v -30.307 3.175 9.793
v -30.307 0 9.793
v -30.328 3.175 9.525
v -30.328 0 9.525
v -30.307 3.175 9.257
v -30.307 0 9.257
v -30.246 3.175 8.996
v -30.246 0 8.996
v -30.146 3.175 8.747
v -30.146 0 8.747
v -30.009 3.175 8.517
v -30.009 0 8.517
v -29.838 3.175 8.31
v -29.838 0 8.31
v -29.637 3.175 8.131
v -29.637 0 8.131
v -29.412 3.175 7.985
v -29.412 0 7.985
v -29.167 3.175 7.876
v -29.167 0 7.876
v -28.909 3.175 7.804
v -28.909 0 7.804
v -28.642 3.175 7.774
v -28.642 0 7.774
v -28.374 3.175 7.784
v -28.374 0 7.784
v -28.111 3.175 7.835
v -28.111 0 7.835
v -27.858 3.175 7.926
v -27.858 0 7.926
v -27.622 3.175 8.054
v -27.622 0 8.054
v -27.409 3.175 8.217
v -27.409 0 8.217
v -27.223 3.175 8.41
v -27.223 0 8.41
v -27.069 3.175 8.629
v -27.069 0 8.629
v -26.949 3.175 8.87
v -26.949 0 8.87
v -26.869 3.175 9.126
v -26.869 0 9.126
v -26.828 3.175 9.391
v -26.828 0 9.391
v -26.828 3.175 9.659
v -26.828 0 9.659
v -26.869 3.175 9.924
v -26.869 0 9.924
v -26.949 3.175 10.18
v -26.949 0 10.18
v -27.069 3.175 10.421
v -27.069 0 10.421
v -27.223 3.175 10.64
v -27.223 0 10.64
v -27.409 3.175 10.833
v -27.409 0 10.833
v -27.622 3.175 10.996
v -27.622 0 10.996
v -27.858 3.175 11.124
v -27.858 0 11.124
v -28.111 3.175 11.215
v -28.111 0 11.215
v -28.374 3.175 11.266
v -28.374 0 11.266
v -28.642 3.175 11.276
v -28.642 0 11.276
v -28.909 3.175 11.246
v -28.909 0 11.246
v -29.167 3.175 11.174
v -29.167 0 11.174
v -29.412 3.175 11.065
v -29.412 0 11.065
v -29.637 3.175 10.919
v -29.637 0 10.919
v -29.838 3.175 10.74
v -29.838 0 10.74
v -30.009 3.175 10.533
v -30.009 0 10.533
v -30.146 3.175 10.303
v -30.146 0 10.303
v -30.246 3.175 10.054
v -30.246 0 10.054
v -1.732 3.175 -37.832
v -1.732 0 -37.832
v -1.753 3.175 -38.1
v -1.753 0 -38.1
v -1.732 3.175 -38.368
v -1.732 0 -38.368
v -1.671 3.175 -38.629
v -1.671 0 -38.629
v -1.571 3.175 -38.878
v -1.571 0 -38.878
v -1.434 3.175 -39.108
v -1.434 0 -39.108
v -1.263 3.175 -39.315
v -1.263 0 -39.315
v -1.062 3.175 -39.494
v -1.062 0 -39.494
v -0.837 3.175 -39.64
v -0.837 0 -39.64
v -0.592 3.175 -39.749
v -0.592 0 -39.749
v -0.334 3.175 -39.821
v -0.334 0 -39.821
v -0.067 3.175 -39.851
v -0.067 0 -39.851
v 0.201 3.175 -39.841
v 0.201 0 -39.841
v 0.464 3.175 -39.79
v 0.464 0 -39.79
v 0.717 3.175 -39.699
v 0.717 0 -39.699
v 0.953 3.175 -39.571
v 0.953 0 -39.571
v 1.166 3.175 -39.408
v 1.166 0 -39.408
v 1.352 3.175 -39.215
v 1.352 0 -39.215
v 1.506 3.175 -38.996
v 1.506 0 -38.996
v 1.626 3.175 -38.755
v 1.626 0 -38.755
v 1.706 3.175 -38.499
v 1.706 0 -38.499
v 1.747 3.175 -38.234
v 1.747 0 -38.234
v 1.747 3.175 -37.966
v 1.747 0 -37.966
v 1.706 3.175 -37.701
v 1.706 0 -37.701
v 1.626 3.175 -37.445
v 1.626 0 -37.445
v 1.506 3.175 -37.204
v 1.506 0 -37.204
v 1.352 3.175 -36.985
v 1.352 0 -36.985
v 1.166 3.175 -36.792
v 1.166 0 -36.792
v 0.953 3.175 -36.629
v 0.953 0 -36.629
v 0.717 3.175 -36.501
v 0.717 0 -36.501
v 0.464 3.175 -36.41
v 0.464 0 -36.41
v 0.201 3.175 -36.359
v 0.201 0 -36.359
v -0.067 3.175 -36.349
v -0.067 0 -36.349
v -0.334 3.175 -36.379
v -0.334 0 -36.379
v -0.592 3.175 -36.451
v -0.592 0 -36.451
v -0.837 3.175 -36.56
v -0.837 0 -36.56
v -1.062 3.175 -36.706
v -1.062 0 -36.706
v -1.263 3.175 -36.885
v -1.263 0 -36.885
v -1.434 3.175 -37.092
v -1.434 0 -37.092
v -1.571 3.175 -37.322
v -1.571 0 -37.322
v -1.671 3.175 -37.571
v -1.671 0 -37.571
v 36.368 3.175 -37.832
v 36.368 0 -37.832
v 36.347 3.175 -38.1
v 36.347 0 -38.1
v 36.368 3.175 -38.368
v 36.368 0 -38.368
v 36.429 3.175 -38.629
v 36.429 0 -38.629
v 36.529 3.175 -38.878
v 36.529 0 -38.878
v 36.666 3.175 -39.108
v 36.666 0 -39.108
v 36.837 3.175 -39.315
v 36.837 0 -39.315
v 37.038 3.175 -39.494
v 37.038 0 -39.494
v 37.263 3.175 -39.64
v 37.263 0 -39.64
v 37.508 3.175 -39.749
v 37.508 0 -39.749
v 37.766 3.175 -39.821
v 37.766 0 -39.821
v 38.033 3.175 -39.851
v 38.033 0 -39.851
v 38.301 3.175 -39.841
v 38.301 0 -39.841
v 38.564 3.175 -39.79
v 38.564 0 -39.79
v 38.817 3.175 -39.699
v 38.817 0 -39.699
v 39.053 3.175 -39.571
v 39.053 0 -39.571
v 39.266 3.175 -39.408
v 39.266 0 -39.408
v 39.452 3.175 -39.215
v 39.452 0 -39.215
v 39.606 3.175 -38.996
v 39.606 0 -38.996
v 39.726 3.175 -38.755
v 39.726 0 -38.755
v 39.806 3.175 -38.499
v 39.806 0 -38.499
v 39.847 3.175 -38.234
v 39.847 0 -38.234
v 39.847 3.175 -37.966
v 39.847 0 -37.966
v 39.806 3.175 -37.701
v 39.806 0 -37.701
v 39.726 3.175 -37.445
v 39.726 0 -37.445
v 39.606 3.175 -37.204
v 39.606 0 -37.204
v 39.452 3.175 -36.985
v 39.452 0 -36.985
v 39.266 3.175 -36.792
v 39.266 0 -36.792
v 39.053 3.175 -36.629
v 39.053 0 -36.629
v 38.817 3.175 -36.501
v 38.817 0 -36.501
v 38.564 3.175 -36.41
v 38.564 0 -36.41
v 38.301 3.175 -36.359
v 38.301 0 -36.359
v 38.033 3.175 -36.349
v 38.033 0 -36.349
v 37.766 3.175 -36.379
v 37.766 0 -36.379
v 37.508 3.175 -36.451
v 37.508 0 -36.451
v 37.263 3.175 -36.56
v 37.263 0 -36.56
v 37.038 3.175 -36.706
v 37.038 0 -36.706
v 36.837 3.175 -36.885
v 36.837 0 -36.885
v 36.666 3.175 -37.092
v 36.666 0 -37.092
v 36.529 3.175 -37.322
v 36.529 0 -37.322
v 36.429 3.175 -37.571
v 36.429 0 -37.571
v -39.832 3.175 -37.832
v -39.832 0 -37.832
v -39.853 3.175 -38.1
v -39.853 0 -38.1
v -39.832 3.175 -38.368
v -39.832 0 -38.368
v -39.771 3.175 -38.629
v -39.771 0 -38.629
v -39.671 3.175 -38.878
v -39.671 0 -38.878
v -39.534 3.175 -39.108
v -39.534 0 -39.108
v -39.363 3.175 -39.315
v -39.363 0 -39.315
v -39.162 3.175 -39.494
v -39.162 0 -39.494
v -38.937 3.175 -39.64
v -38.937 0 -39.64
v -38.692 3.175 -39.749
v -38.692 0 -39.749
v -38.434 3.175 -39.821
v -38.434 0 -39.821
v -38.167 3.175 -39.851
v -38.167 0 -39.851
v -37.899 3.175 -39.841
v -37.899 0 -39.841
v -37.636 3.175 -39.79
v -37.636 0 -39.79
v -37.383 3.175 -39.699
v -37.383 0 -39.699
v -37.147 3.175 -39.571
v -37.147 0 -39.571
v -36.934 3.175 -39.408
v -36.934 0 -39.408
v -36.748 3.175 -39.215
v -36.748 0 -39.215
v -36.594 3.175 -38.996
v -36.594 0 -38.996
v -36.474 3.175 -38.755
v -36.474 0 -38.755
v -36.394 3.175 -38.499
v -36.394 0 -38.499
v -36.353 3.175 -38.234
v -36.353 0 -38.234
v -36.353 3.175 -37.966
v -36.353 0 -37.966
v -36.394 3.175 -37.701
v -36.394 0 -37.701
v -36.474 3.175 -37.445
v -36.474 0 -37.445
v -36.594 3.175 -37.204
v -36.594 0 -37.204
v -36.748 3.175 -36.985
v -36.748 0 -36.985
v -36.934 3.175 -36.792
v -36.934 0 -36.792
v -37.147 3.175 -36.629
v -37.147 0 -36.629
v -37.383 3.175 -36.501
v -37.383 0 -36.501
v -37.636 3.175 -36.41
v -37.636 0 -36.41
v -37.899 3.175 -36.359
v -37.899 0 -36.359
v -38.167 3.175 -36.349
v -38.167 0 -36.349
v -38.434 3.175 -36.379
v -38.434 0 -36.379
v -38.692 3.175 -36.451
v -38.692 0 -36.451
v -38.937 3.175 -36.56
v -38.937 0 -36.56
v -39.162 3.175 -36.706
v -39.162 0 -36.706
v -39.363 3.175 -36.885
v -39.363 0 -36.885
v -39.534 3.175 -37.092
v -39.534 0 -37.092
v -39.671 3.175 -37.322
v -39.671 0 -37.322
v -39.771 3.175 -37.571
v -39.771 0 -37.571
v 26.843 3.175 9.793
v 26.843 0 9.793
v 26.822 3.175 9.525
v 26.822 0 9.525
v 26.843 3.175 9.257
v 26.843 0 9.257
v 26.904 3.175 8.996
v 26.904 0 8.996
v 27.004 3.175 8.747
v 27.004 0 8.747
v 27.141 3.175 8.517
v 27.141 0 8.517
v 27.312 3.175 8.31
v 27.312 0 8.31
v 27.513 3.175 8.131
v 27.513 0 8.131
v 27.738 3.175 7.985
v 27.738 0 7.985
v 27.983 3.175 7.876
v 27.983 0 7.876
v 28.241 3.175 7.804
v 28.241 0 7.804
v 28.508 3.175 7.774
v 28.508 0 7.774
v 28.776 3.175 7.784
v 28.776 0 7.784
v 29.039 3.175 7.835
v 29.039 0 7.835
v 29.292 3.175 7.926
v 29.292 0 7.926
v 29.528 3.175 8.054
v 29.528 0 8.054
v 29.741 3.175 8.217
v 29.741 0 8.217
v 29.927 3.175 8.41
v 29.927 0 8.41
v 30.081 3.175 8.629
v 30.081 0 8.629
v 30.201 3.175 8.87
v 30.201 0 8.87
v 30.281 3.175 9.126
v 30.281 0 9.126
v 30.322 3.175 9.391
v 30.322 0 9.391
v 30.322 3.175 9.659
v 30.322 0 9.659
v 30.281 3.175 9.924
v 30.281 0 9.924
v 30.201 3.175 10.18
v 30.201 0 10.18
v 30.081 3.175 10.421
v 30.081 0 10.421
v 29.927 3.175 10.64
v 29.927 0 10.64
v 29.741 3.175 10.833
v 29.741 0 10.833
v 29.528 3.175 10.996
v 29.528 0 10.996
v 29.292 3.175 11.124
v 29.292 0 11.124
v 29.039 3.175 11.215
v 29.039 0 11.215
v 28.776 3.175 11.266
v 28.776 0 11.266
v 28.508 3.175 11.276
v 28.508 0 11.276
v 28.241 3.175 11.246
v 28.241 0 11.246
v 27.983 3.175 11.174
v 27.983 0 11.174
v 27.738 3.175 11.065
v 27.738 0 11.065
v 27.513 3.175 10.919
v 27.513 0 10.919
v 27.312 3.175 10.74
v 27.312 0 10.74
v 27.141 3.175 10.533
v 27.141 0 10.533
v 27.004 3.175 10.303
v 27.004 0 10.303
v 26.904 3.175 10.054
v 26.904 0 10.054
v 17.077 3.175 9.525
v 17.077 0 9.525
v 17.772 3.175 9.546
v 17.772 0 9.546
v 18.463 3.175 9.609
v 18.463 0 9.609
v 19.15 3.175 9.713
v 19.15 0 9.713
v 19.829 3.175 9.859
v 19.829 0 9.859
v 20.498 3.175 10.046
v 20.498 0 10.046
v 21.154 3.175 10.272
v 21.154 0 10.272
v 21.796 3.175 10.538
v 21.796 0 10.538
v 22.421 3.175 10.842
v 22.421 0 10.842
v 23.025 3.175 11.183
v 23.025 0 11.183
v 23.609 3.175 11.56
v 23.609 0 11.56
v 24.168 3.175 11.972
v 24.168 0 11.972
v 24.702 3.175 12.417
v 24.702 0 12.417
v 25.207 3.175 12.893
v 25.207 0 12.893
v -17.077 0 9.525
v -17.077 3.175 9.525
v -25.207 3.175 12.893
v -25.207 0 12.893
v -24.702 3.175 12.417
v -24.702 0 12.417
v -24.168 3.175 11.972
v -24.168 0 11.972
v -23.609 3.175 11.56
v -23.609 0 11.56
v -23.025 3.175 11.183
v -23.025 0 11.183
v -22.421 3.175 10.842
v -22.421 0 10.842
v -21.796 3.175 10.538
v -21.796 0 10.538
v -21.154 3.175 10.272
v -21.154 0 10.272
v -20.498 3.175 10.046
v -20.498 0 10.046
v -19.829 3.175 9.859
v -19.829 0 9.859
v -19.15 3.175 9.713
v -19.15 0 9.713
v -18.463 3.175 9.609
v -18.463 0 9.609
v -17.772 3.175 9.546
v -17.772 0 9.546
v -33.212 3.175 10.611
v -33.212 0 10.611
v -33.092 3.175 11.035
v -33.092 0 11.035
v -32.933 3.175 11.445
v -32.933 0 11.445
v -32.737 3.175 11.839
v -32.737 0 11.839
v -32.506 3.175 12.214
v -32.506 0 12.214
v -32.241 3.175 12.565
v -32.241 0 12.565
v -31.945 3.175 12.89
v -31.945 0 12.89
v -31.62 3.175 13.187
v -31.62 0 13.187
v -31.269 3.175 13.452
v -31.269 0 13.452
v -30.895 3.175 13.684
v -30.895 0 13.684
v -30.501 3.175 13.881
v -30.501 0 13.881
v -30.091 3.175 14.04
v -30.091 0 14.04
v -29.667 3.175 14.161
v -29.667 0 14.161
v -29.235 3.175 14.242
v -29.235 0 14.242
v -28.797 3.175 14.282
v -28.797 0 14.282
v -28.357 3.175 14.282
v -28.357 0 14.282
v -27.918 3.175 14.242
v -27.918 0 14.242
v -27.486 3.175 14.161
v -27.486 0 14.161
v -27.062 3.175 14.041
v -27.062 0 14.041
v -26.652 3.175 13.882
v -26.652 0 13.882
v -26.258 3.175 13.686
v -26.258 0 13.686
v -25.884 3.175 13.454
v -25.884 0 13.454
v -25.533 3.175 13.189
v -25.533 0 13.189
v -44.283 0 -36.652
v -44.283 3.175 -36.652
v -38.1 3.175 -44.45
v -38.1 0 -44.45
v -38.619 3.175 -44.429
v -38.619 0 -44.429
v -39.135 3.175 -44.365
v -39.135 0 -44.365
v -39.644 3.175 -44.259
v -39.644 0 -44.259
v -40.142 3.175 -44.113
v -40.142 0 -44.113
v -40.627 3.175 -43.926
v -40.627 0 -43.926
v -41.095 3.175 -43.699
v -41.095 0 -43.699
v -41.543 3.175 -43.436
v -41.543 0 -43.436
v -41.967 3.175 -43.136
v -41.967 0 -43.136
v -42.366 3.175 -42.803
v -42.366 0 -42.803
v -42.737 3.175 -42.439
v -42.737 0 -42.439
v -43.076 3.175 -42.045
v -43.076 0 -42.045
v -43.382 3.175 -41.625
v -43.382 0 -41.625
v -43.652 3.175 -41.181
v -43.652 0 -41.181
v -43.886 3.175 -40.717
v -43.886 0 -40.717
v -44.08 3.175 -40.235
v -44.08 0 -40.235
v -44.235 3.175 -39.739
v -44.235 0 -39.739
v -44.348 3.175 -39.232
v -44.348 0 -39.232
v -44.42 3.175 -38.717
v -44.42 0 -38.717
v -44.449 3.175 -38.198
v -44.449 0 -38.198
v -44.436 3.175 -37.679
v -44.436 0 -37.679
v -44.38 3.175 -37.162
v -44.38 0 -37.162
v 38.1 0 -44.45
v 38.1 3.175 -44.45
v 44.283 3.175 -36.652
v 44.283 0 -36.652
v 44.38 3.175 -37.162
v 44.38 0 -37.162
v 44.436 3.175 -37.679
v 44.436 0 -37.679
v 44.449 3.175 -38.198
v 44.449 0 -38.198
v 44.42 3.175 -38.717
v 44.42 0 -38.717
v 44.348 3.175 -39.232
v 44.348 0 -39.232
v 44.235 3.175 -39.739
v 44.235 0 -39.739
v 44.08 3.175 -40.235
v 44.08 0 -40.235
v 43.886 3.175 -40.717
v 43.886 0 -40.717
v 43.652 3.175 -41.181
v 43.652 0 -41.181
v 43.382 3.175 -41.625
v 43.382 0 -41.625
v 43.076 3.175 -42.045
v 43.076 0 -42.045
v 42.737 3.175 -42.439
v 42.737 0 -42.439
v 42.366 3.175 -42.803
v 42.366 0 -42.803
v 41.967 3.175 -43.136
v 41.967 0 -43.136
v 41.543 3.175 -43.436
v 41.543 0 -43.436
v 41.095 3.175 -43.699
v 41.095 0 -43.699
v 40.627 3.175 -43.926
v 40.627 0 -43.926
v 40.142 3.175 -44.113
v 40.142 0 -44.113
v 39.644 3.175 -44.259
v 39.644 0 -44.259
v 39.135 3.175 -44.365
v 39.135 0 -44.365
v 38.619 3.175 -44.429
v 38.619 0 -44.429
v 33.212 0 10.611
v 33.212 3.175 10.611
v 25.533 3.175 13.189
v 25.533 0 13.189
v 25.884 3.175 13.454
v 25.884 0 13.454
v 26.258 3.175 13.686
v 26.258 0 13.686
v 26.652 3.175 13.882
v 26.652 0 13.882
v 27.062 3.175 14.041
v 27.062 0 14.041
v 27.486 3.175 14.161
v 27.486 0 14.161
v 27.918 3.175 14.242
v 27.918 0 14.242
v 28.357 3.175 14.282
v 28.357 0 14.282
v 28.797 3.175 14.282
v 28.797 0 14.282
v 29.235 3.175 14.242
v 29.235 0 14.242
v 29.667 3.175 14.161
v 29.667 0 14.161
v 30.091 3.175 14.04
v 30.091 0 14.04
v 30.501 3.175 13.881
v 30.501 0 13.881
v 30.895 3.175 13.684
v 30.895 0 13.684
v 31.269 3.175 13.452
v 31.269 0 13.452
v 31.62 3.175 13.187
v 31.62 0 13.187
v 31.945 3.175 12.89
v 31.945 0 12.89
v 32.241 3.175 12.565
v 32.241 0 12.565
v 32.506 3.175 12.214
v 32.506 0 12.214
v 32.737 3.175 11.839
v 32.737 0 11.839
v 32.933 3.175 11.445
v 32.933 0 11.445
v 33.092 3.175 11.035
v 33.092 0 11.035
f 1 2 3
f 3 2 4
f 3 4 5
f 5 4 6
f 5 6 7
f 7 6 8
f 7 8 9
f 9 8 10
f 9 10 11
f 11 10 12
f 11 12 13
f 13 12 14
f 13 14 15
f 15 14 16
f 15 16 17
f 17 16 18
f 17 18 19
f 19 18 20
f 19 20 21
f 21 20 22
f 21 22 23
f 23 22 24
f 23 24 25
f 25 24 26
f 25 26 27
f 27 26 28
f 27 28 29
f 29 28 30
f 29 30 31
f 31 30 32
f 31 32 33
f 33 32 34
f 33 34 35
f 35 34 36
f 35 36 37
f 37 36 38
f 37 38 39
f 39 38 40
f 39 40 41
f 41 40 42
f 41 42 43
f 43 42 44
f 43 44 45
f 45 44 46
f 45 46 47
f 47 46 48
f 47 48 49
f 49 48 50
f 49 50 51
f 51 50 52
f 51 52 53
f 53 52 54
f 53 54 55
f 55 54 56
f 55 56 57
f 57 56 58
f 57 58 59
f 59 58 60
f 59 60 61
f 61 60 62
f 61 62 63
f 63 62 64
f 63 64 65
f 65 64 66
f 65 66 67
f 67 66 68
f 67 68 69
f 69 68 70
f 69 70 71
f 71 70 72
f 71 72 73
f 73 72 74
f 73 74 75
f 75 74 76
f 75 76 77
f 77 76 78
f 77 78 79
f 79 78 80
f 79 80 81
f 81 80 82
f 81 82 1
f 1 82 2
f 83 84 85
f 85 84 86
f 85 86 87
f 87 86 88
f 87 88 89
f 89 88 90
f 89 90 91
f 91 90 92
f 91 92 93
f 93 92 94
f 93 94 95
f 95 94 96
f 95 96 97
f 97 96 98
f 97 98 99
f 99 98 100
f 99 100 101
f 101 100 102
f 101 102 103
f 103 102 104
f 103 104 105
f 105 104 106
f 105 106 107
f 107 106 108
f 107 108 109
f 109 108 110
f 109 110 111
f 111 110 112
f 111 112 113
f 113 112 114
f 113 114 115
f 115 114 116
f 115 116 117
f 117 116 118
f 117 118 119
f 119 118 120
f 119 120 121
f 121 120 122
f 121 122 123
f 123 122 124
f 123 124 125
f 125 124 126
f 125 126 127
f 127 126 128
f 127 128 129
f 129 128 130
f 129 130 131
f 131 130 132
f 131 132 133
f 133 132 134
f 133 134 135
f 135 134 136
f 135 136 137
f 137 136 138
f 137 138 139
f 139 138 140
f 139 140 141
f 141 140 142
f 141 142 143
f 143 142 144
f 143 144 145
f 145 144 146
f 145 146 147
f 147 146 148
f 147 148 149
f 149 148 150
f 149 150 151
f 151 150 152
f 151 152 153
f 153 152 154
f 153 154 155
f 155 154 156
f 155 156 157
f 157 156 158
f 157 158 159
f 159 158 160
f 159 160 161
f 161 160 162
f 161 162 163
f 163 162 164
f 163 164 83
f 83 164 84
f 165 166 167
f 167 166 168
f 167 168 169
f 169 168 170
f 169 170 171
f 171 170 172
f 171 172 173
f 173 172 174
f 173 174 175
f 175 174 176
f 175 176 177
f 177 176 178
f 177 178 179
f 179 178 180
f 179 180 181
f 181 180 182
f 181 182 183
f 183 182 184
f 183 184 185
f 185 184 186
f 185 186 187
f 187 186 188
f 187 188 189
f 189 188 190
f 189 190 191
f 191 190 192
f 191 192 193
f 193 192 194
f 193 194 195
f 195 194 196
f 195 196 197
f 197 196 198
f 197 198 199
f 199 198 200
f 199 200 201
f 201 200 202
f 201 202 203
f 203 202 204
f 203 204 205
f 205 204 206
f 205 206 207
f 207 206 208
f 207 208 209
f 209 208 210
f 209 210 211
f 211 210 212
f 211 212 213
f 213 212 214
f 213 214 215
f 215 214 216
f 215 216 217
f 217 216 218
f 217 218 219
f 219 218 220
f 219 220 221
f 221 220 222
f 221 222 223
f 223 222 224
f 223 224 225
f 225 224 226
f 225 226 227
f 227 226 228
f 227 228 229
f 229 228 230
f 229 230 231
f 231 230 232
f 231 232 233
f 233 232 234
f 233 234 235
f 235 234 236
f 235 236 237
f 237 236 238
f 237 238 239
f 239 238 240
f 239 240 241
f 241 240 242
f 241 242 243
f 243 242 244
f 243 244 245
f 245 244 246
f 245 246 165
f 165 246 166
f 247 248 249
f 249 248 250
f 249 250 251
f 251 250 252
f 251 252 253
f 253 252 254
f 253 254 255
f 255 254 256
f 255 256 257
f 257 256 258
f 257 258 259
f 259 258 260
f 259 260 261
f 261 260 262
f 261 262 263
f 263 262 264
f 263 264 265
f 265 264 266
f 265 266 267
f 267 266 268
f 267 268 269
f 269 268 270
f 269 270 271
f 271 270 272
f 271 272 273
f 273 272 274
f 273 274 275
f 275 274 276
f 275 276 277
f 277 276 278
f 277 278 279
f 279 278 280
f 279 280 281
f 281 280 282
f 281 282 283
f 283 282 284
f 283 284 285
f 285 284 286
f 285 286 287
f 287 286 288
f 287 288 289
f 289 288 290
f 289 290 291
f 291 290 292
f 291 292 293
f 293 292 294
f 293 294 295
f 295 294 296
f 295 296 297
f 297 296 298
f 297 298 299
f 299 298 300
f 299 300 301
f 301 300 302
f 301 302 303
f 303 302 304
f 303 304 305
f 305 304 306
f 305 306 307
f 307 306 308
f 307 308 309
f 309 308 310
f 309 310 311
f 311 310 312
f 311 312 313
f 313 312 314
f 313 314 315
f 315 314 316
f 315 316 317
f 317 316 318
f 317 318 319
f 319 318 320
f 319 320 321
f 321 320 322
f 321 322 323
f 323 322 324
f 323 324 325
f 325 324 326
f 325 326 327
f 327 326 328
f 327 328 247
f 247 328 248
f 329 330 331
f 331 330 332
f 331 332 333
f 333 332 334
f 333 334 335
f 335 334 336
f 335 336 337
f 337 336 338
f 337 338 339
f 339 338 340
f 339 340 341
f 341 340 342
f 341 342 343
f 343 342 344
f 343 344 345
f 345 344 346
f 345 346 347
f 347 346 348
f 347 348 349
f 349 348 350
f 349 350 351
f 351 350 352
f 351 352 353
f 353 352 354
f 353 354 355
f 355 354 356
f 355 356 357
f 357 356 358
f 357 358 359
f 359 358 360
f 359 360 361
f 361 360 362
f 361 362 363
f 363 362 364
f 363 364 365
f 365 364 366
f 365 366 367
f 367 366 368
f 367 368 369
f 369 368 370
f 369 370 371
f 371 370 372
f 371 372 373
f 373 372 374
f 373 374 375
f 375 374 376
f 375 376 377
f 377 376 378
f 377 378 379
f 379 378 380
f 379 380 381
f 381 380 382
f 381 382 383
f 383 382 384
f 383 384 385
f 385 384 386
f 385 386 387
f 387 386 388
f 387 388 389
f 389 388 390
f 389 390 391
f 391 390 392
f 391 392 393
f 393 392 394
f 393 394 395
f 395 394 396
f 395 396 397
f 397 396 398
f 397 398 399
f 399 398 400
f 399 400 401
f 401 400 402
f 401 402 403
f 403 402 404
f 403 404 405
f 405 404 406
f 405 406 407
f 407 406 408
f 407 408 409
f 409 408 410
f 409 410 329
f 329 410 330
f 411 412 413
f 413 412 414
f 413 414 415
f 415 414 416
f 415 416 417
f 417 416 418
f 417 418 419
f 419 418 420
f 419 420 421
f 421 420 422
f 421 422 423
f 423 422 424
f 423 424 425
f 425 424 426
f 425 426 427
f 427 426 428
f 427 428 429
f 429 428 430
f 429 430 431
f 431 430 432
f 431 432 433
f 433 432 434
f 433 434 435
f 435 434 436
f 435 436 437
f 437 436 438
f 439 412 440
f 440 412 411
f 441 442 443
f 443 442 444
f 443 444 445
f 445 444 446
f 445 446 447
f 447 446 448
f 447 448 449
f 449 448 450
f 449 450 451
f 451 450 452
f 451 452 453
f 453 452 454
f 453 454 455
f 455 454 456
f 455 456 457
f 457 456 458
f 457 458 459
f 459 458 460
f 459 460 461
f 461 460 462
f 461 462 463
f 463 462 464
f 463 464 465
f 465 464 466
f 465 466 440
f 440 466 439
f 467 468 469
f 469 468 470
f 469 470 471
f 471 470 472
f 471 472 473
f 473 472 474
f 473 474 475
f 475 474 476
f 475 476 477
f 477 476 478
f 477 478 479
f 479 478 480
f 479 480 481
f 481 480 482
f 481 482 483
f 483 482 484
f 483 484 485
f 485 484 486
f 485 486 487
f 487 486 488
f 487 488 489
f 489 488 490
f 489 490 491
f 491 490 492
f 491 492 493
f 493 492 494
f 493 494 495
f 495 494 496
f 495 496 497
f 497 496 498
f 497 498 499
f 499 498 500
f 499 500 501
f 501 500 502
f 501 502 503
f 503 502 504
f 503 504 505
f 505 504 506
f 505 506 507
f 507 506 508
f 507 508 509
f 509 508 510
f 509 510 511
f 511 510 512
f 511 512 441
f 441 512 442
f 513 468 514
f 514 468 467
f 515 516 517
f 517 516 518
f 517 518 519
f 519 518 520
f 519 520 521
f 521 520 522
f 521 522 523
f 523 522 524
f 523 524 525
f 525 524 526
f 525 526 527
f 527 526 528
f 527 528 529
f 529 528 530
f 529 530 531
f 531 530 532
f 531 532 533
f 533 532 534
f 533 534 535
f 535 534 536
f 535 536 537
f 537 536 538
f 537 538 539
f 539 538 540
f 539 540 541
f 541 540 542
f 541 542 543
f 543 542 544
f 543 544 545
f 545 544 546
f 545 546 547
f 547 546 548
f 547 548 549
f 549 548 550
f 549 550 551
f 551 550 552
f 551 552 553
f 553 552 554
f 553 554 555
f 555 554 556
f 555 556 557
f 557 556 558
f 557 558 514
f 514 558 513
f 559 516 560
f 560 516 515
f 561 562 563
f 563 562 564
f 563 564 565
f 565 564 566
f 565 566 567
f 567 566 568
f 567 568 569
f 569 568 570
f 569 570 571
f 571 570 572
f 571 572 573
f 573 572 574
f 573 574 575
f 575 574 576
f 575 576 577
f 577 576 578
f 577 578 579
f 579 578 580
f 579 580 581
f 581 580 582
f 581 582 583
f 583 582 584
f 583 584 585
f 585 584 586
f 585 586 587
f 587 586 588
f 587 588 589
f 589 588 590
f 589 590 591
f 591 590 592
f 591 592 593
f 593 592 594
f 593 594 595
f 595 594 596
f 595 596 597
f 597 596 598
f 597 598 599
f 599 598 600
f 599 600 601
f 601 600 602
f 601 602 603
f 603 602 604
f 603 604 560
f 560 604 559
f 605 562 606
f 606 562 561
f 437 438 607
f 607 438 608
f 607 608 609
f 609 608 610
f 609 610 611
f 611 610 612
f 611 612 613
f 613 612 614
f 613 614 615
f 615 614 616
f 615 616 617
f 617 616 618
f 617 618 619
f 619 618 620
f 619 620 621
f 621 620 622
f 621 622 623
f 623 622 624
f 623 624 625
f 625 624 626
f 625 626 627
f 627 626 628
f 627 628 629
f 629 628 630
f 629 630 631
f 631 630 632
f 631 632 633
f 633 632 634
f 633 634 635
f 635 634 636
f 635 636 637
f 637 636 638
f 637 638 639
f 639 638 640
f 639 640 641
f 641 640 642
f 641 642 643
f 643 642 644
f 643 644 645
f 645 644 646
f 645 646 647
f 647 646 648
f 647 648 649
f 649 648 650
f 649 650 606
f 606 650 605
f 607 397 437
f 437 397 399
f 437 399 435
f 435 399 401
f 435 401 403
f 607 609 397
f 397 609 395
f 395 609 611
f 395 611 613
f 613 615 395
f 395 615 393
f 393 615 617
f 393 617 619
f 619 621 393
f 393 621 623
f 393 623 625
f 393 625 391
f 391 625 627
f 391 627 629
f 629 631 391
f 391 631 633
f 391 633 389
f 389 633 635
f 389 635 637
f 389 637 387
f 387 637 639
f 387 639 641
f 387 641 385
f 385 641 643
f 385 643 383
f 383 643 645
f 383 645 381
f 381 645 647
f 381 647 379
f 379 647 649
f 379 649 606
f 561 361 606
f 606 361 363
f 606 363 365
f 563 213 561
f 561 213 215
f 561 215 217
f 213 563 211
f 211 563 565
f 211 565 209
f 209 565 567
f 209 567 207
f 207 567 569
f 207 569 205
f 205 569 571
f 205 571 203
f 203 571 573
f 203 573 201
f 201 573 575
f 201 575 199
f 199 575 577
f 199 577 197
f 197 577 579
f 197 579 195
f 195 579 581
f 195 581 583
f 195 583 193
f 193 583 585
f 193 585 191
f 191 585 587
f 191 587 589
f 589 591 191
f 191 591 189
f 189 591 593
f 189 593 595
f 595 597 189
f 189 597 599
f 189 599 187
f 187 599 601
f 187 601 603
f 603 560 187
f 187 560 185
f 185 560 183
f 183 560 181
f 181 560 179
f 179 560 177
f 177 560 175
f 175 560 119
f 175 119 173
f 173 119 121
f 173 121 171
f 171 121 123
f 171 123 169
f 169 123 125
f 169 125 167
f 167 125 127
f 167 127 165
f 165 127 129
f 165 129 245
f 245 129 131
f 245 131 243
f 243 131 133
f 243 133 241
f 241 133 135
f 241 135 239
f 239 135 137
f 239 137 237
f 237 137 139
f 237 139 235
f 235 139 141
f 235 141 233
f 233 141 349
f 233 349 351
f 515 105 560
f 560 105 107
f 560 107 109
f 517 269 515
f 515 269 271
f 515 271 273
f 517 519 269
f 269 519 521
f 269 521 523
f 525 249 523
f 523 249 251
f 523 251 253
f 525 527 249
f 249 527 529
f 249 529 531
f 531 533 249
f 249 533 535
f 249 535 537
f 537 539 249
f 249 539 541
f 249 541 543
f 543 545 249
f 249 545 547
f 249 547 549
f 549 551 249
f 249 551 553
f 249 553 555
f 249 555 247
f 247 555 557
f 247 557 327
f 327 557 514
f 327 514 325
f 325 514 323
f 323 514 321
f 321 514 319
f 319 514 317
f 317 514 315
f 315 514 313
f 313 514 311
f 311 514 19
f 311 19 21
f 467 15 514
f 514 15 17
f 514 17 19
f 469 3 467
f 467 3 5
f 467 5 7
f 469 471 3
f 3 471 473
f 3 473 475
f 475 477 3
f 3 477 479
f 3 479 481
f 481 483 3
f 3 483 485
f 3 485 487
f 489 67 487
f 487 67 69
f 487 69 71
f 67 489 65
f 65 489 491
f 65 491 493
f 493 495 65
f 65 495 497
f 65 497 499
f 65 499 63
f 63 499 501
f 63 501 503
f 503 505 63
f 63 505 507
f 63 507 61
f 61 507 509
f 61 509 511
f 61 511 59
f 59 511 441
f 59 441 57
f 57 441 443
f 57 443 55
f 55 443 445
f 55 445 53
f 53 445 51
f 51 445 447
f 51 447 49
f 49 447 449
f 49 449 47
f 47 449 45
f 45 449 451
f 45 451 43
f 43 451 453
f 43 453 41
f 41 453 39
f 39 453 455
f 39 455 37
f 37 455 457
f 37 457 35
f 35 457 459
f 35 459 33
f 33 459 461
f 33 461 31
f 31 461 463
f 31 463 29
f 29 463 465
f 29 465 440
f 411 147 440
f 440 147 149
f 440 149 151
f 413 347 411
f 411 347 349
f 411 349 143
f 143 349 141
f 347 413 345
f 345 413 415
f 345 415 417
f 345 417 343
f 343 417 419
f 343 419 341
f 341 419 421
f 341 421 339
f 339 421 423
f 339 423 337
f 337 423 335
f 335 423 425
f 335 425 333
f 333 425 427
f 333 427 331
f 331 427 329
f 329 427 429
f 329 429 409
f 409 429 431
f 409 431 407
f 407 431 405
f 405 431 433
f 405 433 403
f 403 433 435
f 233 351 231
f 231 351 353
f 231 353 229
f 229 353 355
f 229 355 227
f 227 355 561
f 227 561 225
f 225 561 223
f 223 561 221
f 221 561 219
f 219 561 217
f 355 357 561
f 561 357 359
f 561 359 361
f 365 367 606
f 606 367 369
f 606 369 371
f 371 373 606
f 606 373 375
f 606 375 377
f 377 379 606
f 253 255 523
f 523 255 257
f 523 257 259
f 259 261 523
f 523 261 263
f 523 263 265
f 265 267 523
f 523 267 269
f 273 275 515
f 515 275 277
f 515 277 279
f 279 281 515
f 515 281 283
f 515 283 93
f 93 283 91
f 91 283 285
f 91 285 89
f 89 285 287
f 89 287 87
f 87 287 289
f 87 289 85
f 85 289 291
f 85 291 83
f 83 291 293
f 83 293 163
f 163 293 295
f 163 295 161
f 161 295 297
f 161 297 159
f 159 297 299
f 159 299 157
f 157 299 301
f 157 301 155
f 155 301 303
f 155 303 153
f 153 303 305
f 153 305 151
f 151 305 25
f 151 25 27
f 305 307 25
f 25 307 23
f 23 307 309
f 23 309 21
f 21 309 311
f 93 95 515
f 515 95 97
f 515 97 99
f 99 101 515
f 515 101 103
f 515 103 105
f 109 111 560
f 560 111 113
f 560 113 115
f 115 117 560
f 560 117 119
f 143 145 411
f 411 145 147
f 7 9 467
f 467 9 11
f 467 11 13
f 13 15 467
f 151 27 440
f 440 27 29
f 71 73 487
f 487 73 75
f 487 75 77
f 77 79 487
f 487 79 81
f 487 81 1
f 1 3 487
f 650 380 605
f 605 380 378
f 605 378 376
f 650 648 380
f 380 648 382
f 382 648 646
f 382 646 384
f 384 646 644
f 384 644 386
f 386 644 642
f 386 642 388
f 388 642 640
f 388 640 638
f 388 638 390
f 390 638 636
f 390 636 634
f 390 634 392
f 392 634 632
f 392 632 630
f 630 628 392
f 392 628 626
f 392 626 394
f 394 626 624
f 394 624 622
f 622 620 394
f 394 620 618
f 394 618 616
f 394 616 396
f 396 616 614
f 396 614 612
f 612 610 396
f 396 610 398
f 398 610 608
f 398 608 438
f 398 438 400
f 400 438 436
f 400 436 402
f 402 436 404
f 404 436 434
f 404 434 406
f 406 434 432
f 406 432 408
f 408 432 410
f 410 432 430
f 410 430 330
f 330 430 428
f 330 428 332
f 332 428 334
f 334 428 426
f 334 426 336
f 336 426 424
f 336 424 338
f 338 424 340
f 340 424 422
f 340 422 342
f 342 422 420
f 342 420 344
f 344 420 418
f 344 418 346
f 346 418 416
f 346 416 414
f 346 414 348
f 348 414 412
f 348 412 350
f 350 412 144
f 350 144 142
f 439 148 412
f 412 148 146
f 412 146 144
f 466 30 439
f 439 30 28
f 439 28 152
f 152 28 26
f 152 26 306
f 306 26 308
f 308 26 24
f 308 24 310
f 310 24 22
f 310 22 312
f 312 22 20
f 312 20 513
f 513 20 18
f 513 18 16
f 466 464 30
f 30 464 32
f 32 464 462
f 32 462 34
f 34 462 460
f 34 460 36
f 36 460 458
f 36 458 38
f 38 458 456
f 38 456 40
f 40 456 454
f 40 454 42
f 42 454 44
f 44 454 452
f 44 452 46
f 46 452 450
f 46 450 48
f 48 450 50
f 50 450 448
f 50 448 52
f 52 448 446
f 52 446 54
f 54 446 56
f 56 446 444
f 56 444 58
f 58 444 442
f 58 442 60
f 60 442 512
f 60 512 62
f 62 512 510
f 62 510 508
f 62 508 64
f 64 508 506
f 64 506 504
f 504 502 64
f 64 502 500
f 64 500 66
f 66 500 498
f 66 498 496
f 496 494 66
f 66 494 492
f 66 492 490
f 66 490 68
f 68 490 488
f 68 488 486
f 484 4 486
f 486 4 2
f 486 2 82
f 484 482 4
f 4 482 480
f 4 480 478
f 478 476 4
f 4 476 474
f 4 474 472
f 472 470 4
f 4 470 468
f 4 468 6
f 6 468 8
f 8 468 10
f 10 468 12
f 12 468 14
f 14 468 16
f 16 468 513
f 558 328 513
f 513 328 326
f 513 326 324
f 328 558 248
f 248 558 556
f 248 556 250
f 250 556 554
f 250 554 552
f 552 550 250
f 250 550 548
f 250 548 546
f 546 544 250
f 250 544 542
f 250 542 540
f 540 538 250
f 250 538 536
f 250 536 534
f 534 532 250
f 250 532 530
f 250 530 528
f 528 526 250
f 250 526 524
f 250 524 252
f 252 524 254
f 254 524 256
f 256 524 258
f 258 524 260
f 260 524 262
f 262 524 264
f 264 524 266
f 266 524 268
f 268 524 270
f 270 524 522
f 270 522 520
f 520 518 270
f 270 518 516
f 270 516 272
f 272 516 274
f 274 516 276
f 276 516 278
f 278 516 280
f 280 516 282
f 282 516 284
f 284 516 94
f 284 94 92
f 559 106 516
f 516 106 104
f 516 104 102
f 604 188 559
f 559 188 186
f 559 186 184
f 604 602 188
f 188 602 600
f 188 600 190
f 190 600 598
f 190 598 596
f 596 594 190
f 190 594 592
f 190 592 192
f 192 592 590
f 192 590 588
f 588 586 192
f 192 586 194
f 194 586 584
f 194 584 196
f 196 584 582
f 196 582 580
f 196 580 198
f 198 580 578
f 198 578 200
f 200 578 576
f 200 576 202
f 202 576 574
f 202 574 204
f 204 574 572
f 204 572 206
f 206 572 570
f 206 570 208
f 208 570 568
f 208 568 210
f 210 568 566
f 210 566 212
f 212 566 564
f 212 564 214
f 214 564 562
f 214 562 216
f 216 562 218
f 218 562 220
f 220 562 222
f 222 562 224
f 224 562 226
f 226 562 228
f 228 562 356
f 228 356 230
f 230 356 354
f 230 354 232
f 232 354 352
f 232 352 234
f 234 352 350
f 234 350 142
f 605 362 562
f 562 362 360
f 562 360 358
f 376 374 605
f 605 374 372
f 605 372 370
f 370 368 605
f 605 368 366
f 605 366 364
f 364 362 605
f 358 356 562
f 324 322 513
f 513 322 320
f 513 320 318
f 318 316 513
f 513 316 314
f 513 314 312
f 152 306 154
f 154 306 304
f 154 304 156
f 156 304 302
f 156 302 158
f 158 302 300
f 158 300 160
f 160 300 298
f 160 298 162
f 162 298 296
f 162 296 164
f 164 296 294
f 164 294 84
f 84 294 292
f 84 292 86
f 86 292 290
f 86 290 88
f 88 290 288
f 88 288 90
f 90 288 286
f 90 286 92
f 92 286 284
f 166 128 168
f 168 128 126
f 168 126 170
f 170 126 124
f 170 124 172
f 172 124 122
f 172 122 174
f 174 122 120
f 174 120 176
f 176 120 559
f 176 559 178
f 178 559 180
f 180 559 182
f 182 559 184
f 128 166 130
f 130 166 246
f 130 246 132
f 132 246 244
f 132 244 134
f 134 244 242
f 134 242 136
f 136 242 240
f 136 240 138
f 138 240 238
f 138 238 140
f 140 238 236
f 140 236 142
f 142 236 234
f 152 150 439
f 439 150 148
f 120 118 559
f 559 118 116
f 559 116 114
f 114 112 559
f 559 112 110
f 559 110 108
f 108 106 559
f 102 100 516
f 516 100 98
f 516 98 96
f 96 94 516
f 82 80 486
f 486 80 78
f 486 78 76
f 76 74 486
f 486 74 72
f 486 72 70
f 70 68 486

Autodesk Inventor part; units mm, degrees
ref_plane "YZ Plane" through (0, 0, 0) normal (1, 0, 0) x (0, 1, 0)
ref_plane "XZ Plane" through (0, 0, 0) normal (0, 1, 0) x (-1, 0, 0)
ref_plane "XY Plane" through (0, 0, 0) normal (0, 0, 1) x (1, 0, 0)
sketch "Sketch1" plane through (0, 0, 0) normal (0, 1, 0) x (-1, 0, 0)
  line L0 (101.6, 38.1) -> (-101.6, 38.1) construction
  line L1 (-101.6, 38.1) -> (-101.6, -38.1) construction
  line L2 (-101.6, -38.1) -> (101.6, -38.1) construction
  line L3 (101.6, -38.1) -> (101.6, 38.1) construction
  line L4 (101.6, 38.1) -> (-101.6, -38.1) construction
  line L5 (-101.6, 38.1) -> (101.6, -38.1) construction
  line L6 (-28.575, 66.675) -> (28.575, 66.675) construction
  line L7 (28.575, 66.675) -> (28.575, 9.525) construction
  line L8 (28.575, 9.525) -> (-28.575, 9.525)
  line L9 (-28.575, 9.525) -> (-28.575, 66.675) construction
  line L10 (-28.575, 66.675) -> (28.575, 9.525) construction
  line L11 (28.575, 66.675) -> (-28.575, 9.525) construction
  circle A0 centre (-38.1, 50.8) radius 3.175 construction
  line L12 (0, 38.1) -> (0, -38.1) construction
  circle A1 centre (-38.1, 50.8) radius 9.525 construction
  line L13 (-38.1, 60.325) -> (-28.575, 60.325) construction
  circle A2 centre (38.1, 50.8) radius 3.175 construction
  circle A3 centre (38.1, 50.8) radius 9.525 construction
  line L14 (38.1, 60.325) -> (28.575, 60.325) construction
  circle A4 centre (-76.2, -38.1) radius 1.7526 construction
  circle A5 centre (-95.25, 3.175) radius 1.7526 construction
  circle A6 centre (76.2, -38.1) radius 1.7526 construction
  circle A7 centre (95.25, 3.175) radius 1.7526 construction
  line L15 (-101.6, -38.1) -> (-101.6, 6.35) construction
  line L16 (-101.6, 6.35) -> (-44.4797, 57.8728) construction
  line L17 (101.6, -38.1) -> (101.6, 6.35) construction
  line L18 (101.6, 6.35) -> (44.4797, 57.8728) construction
  line L19 (-42.6417, 42.4275) -> (-87.975, 1.5367) construction
  line L20 (-87.975, 1.5367) -> (-87.975, -38.1) construction
  line L21 (87.975, -38.1) -> (87.975, 1.5367) construction
  line L22 (87.975, 1.5367) -> (42.6417, 42.4275) construction
  line L23 (0, -38.1) -> (-95.25, -38.1) construction
  line L24 (0, -38.1) -> (95.25, -38.1) construction
  circle A8 centre (-60.325, 35.0287) radius 1.7526 construction
  circle A9 centre (-33.3375, 31.75) radius 1.7526 construction
  line L25 (-38.1, 0) -> (-38.1, 41.275) construction
  line L26 (-38.1, 0) -> (0, 0) construction
  circle A10 centre (60.325, 35.0287) radius 1.7526 construction
  circle A11 centre (33.3375, 31.75) radius 1.7526 construction
  line L27 (38.1, 0) -> (38.1, 41.275) construction
  line L28 (38.1, 0) -> (0, 0) construction
  line L29 (-87.975, 0) -> (-65.115, 0) construction
  line L30 (-65.115, 0) -> (-65.115, -31.75) construction
  line L31 (-65.115, -31.75) -> (-87.975, -31.75) construction
  line L32 (-101.6, -38.1) -> (101.6, -38.1) construction
  line L33 (101.6, -38.1) -> (101.6, 19.05) construction
  line L34 (101.6, 19.05) -> (-101.6, 19.05) construction
  line L35 (-101.6, 19.05) -> (-101.6, -38.1) construction
  line L36 (-101.6, 19.05) -> (-87.5203, 19.05) construction
  line L37 (87.5203, 19.05) -> (101.6, 19.05) construction
  circle A12 centre (-38.1, 0) radius 3.175 construction
  circle A13 centre (-38.1, 0) radius 6.35 construction
  circle A14 centre (38.1, 0) radius 3.175 construction
  circle A15 centre (38.1, 0) radius 6.35 construction
  circle A16 centre (28.575, 9.525) radius 1.7526
  circle A17 centre (28.575, 9.525) radius 4.7625
  arc A18 (17.0773, 9.525) -> (28.575, 21.0227) centre (17.0773, 21.0227) ccw
  circle A19 centre (-28.575, 9.525) radius 1.7526
  circle A20 centre (-28.575, 9.525) radius 4.7625
  arc A21 (-28.575, 21.0227) -> (-17.0773, 9.525) centre (-17.0773, 21.0227) ccw
  arc A22 (31.4325, 5.715) -> (38.1, 19.05) centre (21.4312, 19.05) ccw construction
  arc A23 (-38.1, 19.05) -> (-31.4325, 5.715) centre (-21.4312, 19.05) ccw construction
  line L38 (-61.94, -38.1) -> (-61.94, 25.0204) construction
  line L39 (87.975, 0) -> (65.115, 0) construction
  line L40 (65.115, 0) -> (65.115, -31.75) construction
  line L41 (65.115, -31.75) -> (87.975, -31.75) construction
  line L42 (61.94, -38.1) -> (61.94, 25.0204) construction
  line L43 (-28.575, 4.7625) -> (28.575, 4.7625) construction
  line L44 (101.6, -31.75) -> (-101.6, -31.75) construction
  line L45 (-101.6, -31.75) -> (-101.6, -44.45) construction
  line L46 (-101.6, -44.45) -> (101.6, -44.45)
  line L47 (101.6, -44.45) -> (101.6, -31.75) construction
  circle A24 centre (0, -38.1) radius 1.7526
  circle A25 centre (38.1, -38.1) radius 1.7526
  circle A26 centre (-38.1, -38.1) radius 1.7526
  line L48 (101.6, -38.1) -> (76.2, -44.45) construction
  line L49 (-101.6, -38.1) -> (-76.2, -44.45) construction
  line L50 (76.2, -38.1) -> (76.2, -44.45) construction
  line L51 (-76.2, -38.1) -> (-76.2, -44.45) construction
  line L52 (59.1924, 41.2769) -> (32.488, 36.4361) construction
  circle A27 centre (60.325, 35.0287) radius 6.35 construction
  circle A28 centre (33.3375, 31.75) radius 4.7625 construction
  line L53 (-59.1924, 41.2769) -> (-32.488, 36.4361) construction
  circle A29 centre (-60.325, 35.0287) radius 6.35 construction
  circle A30 centre (-33.3375, 31.75) radius 4.7625 construction
  line L54 (-87.975, 0) -> (-65.115, 0) construction
  line L55 (-65.115, 0) -> (-65.115, -3.175) construction
  line L56 (-65.115, -3.175) -> (-87.975, -3.175) construction
  line L57 (-87.975, -3.175) -> (-87.975, 0) construction
  line L58 (-65.115, -15.875) -> (-87.975, -15.875) construction
  line L59 (-65.115, -28.575) -> (-87.975, -28.575) construction
  line L60 (-84.8, -38.1) -> (-84.8, 0.1248) construction
  line L61 (65.115, -3.175) -> (87.975, -3.175) construction
  line L62 (65.115, -15.875) -> (87.975, -15.875) construction
  line L63 (65.115, -28.575) -> (87.975, -28.575) construction
  line L64 (84.8, -38.1) -> (84.8, 0.1248) construction
  line L65 (-31.75, -31.75) -> (31.75, -31.75) construction
  line L66 (31.75, -31.75) -> (31.75, 0) construction
  line L67 (31.75, 0) -> (-31.75, 0) construction
  line L68 (-31.75, 0) -> (-31.75, -31.75) construction
  circle A31 centre (71.465, 12.7) radius 3.175 construction
  circle A32 centre (-71.465, 12.7) radius 3.175 construction
  circle A33 centre (38.1, -38.1) radius 6.35
  circle A34 centre (-38.1, -38.1) radius 6.35
  line L69 (44.2827, -36.6518) -> (33.212, 10.6111)
  line L70 (-44.2827, -36.6518) -> (-33.212, 10.6111)
  point P0 (28.575, 38.1)
  point P1 (-28.575, 38.1)
  point P2 (28.575, 60.325)
  point P3 (44.4797, 57.8728)
  point P4 (101.6, -15.875)
  point P5 (38.1, 41.275)
  point P6 (-87.975, -31.75)
  point P7 (-101.6, 6.35)
  point P8 (101.6, 6.35)
  point P9 (31.75, 0)
  point P10 (38.1, 6.35)
  point P11 (-38.1, 6.35)
  point P12 (-31.75, 0)
  point P13 (87.975, 0)
  point P14 (61.94, 25.0204)
  point P15 (-17.0773, 9.525)
  point P16 (-28.575, 21.0227)
  point P17 (-38.1, 19.05)
  point P18 (-31.4325, 5.715)
  point P19 (-21.8502, 0)
  point P20 (21.8502, 0)
  point P21 (-25.2074, 12.8926)
  point P22 (-28.575, 14.2875)
  point P23 (-23.8125, 9.525)
  point P24 (-28.575, 50.8)
  point P25 (25.2074, 12.8926)
  point P26 (28.575, 14.2875)
  point P27 (23.8125, 9.525)
  point P28 (28.575, 50.8)
  point P29 (26.8224, 9.525)
  point P30 (28.575, 11.2776)
  point P31 (61.94, -31.75)
  point P32 (-61.94, -31.75)
  point P33 (-28.575, 31.75)
  point P34 (-64.5781, 39.7439)
  point P35 (64.5781, 39.7439)
  point P36 (28.575, 31.75)
  point P37 (-84.8, -3.175)
  point P38 (-84.8, -28.575)
  point P39 (84.8, -3.175)
  point P40 (84.8, -28.575)
  point P41 (31.75, -31.75)
  point P42 (-101.6, -31.75)
  point P43 (31.75, -31.75)
  point P44 (-26.8224, 9.525)
  point P45 (-28.575, 11.2776)
  point P46 (-39.8526, -38.1)
  point P47 (-36.3474, -38.1)
  point P48 (-1.7526, -38.1)
  point P49 (1.7526, -38.1)
  point P50 (36.3474, -38.1)
  point P51 (39.8526, -38.1)
  point P52 (-38.1, -44.45)
  point P53 (38.1, -44.45)
  dimension "d0" = 203.2
  dimension "d1" = 76.2
  dimension "d4" = 57.15
  dimension "d6" = 6.35
  dimension "d7" = 38.1
  dimension "d8" = 19.05
  dimension "d10" = 3.5052
  dimension "d11" = 3.5052
  dimension "d12" = 0
  dimension "d14" = 25.4
  dimension "d15" = 6.35
  dimension "d20" = 50.8
  dimension "d21" = 41.275
  dimension "d22" = 44.45
  dimension "d24" = 12.7
  dimension "d25" = 13.625
  dimension "d26" = 12.7
  dimension "d27" = 13.625
  dimension "d31" = 3.5052
  dimension "d32" = 3.5052
  dimension "d33" = 6.35
  dimension "d34" = 31.75
  dimension "d35" = 4.7625
  dimension "d36" = 22.225
  dimension "d37" = 9.525
  dimension "d39" = 31.75
  dimension "d40" = 6.35
  dimension "d42" = 57.15
  dimension "d43" = 6.35
  dimension "d44" = 9.525
  dimension "d45" = 9.525
  dimension "d46" = 12.7
  dimension "d104" = 3.5052
  dimension "d105" = 9.525
  dimension "d106" = 3.175
  dimension "d107" = 22.86
  dimension "d123" = 88.9
  dimension "d124" = 12.7
  dimension "d125" = 3.5052
  dimension "d126" = 3.5052
  dimension "d127" = 38.1
  dimension "d128" = 28.575
  dimension "d129" = 3.175
  dimension "d130" = 3.175
  dimension "d131" = 31.75
  dimension "d132" = 31.75
  dimension "d133" = 31.75
  dimension "d135" = 6.35
  dimension "d136" = 12.7
  dimension "d137" = 9.525
extrude "Extrusion1" add sketch "Sketch1" along normal blind 3.175
equation "\"d35\" = 0.5 * d37"
properties part number "Chassis" material "UHMW, White"
